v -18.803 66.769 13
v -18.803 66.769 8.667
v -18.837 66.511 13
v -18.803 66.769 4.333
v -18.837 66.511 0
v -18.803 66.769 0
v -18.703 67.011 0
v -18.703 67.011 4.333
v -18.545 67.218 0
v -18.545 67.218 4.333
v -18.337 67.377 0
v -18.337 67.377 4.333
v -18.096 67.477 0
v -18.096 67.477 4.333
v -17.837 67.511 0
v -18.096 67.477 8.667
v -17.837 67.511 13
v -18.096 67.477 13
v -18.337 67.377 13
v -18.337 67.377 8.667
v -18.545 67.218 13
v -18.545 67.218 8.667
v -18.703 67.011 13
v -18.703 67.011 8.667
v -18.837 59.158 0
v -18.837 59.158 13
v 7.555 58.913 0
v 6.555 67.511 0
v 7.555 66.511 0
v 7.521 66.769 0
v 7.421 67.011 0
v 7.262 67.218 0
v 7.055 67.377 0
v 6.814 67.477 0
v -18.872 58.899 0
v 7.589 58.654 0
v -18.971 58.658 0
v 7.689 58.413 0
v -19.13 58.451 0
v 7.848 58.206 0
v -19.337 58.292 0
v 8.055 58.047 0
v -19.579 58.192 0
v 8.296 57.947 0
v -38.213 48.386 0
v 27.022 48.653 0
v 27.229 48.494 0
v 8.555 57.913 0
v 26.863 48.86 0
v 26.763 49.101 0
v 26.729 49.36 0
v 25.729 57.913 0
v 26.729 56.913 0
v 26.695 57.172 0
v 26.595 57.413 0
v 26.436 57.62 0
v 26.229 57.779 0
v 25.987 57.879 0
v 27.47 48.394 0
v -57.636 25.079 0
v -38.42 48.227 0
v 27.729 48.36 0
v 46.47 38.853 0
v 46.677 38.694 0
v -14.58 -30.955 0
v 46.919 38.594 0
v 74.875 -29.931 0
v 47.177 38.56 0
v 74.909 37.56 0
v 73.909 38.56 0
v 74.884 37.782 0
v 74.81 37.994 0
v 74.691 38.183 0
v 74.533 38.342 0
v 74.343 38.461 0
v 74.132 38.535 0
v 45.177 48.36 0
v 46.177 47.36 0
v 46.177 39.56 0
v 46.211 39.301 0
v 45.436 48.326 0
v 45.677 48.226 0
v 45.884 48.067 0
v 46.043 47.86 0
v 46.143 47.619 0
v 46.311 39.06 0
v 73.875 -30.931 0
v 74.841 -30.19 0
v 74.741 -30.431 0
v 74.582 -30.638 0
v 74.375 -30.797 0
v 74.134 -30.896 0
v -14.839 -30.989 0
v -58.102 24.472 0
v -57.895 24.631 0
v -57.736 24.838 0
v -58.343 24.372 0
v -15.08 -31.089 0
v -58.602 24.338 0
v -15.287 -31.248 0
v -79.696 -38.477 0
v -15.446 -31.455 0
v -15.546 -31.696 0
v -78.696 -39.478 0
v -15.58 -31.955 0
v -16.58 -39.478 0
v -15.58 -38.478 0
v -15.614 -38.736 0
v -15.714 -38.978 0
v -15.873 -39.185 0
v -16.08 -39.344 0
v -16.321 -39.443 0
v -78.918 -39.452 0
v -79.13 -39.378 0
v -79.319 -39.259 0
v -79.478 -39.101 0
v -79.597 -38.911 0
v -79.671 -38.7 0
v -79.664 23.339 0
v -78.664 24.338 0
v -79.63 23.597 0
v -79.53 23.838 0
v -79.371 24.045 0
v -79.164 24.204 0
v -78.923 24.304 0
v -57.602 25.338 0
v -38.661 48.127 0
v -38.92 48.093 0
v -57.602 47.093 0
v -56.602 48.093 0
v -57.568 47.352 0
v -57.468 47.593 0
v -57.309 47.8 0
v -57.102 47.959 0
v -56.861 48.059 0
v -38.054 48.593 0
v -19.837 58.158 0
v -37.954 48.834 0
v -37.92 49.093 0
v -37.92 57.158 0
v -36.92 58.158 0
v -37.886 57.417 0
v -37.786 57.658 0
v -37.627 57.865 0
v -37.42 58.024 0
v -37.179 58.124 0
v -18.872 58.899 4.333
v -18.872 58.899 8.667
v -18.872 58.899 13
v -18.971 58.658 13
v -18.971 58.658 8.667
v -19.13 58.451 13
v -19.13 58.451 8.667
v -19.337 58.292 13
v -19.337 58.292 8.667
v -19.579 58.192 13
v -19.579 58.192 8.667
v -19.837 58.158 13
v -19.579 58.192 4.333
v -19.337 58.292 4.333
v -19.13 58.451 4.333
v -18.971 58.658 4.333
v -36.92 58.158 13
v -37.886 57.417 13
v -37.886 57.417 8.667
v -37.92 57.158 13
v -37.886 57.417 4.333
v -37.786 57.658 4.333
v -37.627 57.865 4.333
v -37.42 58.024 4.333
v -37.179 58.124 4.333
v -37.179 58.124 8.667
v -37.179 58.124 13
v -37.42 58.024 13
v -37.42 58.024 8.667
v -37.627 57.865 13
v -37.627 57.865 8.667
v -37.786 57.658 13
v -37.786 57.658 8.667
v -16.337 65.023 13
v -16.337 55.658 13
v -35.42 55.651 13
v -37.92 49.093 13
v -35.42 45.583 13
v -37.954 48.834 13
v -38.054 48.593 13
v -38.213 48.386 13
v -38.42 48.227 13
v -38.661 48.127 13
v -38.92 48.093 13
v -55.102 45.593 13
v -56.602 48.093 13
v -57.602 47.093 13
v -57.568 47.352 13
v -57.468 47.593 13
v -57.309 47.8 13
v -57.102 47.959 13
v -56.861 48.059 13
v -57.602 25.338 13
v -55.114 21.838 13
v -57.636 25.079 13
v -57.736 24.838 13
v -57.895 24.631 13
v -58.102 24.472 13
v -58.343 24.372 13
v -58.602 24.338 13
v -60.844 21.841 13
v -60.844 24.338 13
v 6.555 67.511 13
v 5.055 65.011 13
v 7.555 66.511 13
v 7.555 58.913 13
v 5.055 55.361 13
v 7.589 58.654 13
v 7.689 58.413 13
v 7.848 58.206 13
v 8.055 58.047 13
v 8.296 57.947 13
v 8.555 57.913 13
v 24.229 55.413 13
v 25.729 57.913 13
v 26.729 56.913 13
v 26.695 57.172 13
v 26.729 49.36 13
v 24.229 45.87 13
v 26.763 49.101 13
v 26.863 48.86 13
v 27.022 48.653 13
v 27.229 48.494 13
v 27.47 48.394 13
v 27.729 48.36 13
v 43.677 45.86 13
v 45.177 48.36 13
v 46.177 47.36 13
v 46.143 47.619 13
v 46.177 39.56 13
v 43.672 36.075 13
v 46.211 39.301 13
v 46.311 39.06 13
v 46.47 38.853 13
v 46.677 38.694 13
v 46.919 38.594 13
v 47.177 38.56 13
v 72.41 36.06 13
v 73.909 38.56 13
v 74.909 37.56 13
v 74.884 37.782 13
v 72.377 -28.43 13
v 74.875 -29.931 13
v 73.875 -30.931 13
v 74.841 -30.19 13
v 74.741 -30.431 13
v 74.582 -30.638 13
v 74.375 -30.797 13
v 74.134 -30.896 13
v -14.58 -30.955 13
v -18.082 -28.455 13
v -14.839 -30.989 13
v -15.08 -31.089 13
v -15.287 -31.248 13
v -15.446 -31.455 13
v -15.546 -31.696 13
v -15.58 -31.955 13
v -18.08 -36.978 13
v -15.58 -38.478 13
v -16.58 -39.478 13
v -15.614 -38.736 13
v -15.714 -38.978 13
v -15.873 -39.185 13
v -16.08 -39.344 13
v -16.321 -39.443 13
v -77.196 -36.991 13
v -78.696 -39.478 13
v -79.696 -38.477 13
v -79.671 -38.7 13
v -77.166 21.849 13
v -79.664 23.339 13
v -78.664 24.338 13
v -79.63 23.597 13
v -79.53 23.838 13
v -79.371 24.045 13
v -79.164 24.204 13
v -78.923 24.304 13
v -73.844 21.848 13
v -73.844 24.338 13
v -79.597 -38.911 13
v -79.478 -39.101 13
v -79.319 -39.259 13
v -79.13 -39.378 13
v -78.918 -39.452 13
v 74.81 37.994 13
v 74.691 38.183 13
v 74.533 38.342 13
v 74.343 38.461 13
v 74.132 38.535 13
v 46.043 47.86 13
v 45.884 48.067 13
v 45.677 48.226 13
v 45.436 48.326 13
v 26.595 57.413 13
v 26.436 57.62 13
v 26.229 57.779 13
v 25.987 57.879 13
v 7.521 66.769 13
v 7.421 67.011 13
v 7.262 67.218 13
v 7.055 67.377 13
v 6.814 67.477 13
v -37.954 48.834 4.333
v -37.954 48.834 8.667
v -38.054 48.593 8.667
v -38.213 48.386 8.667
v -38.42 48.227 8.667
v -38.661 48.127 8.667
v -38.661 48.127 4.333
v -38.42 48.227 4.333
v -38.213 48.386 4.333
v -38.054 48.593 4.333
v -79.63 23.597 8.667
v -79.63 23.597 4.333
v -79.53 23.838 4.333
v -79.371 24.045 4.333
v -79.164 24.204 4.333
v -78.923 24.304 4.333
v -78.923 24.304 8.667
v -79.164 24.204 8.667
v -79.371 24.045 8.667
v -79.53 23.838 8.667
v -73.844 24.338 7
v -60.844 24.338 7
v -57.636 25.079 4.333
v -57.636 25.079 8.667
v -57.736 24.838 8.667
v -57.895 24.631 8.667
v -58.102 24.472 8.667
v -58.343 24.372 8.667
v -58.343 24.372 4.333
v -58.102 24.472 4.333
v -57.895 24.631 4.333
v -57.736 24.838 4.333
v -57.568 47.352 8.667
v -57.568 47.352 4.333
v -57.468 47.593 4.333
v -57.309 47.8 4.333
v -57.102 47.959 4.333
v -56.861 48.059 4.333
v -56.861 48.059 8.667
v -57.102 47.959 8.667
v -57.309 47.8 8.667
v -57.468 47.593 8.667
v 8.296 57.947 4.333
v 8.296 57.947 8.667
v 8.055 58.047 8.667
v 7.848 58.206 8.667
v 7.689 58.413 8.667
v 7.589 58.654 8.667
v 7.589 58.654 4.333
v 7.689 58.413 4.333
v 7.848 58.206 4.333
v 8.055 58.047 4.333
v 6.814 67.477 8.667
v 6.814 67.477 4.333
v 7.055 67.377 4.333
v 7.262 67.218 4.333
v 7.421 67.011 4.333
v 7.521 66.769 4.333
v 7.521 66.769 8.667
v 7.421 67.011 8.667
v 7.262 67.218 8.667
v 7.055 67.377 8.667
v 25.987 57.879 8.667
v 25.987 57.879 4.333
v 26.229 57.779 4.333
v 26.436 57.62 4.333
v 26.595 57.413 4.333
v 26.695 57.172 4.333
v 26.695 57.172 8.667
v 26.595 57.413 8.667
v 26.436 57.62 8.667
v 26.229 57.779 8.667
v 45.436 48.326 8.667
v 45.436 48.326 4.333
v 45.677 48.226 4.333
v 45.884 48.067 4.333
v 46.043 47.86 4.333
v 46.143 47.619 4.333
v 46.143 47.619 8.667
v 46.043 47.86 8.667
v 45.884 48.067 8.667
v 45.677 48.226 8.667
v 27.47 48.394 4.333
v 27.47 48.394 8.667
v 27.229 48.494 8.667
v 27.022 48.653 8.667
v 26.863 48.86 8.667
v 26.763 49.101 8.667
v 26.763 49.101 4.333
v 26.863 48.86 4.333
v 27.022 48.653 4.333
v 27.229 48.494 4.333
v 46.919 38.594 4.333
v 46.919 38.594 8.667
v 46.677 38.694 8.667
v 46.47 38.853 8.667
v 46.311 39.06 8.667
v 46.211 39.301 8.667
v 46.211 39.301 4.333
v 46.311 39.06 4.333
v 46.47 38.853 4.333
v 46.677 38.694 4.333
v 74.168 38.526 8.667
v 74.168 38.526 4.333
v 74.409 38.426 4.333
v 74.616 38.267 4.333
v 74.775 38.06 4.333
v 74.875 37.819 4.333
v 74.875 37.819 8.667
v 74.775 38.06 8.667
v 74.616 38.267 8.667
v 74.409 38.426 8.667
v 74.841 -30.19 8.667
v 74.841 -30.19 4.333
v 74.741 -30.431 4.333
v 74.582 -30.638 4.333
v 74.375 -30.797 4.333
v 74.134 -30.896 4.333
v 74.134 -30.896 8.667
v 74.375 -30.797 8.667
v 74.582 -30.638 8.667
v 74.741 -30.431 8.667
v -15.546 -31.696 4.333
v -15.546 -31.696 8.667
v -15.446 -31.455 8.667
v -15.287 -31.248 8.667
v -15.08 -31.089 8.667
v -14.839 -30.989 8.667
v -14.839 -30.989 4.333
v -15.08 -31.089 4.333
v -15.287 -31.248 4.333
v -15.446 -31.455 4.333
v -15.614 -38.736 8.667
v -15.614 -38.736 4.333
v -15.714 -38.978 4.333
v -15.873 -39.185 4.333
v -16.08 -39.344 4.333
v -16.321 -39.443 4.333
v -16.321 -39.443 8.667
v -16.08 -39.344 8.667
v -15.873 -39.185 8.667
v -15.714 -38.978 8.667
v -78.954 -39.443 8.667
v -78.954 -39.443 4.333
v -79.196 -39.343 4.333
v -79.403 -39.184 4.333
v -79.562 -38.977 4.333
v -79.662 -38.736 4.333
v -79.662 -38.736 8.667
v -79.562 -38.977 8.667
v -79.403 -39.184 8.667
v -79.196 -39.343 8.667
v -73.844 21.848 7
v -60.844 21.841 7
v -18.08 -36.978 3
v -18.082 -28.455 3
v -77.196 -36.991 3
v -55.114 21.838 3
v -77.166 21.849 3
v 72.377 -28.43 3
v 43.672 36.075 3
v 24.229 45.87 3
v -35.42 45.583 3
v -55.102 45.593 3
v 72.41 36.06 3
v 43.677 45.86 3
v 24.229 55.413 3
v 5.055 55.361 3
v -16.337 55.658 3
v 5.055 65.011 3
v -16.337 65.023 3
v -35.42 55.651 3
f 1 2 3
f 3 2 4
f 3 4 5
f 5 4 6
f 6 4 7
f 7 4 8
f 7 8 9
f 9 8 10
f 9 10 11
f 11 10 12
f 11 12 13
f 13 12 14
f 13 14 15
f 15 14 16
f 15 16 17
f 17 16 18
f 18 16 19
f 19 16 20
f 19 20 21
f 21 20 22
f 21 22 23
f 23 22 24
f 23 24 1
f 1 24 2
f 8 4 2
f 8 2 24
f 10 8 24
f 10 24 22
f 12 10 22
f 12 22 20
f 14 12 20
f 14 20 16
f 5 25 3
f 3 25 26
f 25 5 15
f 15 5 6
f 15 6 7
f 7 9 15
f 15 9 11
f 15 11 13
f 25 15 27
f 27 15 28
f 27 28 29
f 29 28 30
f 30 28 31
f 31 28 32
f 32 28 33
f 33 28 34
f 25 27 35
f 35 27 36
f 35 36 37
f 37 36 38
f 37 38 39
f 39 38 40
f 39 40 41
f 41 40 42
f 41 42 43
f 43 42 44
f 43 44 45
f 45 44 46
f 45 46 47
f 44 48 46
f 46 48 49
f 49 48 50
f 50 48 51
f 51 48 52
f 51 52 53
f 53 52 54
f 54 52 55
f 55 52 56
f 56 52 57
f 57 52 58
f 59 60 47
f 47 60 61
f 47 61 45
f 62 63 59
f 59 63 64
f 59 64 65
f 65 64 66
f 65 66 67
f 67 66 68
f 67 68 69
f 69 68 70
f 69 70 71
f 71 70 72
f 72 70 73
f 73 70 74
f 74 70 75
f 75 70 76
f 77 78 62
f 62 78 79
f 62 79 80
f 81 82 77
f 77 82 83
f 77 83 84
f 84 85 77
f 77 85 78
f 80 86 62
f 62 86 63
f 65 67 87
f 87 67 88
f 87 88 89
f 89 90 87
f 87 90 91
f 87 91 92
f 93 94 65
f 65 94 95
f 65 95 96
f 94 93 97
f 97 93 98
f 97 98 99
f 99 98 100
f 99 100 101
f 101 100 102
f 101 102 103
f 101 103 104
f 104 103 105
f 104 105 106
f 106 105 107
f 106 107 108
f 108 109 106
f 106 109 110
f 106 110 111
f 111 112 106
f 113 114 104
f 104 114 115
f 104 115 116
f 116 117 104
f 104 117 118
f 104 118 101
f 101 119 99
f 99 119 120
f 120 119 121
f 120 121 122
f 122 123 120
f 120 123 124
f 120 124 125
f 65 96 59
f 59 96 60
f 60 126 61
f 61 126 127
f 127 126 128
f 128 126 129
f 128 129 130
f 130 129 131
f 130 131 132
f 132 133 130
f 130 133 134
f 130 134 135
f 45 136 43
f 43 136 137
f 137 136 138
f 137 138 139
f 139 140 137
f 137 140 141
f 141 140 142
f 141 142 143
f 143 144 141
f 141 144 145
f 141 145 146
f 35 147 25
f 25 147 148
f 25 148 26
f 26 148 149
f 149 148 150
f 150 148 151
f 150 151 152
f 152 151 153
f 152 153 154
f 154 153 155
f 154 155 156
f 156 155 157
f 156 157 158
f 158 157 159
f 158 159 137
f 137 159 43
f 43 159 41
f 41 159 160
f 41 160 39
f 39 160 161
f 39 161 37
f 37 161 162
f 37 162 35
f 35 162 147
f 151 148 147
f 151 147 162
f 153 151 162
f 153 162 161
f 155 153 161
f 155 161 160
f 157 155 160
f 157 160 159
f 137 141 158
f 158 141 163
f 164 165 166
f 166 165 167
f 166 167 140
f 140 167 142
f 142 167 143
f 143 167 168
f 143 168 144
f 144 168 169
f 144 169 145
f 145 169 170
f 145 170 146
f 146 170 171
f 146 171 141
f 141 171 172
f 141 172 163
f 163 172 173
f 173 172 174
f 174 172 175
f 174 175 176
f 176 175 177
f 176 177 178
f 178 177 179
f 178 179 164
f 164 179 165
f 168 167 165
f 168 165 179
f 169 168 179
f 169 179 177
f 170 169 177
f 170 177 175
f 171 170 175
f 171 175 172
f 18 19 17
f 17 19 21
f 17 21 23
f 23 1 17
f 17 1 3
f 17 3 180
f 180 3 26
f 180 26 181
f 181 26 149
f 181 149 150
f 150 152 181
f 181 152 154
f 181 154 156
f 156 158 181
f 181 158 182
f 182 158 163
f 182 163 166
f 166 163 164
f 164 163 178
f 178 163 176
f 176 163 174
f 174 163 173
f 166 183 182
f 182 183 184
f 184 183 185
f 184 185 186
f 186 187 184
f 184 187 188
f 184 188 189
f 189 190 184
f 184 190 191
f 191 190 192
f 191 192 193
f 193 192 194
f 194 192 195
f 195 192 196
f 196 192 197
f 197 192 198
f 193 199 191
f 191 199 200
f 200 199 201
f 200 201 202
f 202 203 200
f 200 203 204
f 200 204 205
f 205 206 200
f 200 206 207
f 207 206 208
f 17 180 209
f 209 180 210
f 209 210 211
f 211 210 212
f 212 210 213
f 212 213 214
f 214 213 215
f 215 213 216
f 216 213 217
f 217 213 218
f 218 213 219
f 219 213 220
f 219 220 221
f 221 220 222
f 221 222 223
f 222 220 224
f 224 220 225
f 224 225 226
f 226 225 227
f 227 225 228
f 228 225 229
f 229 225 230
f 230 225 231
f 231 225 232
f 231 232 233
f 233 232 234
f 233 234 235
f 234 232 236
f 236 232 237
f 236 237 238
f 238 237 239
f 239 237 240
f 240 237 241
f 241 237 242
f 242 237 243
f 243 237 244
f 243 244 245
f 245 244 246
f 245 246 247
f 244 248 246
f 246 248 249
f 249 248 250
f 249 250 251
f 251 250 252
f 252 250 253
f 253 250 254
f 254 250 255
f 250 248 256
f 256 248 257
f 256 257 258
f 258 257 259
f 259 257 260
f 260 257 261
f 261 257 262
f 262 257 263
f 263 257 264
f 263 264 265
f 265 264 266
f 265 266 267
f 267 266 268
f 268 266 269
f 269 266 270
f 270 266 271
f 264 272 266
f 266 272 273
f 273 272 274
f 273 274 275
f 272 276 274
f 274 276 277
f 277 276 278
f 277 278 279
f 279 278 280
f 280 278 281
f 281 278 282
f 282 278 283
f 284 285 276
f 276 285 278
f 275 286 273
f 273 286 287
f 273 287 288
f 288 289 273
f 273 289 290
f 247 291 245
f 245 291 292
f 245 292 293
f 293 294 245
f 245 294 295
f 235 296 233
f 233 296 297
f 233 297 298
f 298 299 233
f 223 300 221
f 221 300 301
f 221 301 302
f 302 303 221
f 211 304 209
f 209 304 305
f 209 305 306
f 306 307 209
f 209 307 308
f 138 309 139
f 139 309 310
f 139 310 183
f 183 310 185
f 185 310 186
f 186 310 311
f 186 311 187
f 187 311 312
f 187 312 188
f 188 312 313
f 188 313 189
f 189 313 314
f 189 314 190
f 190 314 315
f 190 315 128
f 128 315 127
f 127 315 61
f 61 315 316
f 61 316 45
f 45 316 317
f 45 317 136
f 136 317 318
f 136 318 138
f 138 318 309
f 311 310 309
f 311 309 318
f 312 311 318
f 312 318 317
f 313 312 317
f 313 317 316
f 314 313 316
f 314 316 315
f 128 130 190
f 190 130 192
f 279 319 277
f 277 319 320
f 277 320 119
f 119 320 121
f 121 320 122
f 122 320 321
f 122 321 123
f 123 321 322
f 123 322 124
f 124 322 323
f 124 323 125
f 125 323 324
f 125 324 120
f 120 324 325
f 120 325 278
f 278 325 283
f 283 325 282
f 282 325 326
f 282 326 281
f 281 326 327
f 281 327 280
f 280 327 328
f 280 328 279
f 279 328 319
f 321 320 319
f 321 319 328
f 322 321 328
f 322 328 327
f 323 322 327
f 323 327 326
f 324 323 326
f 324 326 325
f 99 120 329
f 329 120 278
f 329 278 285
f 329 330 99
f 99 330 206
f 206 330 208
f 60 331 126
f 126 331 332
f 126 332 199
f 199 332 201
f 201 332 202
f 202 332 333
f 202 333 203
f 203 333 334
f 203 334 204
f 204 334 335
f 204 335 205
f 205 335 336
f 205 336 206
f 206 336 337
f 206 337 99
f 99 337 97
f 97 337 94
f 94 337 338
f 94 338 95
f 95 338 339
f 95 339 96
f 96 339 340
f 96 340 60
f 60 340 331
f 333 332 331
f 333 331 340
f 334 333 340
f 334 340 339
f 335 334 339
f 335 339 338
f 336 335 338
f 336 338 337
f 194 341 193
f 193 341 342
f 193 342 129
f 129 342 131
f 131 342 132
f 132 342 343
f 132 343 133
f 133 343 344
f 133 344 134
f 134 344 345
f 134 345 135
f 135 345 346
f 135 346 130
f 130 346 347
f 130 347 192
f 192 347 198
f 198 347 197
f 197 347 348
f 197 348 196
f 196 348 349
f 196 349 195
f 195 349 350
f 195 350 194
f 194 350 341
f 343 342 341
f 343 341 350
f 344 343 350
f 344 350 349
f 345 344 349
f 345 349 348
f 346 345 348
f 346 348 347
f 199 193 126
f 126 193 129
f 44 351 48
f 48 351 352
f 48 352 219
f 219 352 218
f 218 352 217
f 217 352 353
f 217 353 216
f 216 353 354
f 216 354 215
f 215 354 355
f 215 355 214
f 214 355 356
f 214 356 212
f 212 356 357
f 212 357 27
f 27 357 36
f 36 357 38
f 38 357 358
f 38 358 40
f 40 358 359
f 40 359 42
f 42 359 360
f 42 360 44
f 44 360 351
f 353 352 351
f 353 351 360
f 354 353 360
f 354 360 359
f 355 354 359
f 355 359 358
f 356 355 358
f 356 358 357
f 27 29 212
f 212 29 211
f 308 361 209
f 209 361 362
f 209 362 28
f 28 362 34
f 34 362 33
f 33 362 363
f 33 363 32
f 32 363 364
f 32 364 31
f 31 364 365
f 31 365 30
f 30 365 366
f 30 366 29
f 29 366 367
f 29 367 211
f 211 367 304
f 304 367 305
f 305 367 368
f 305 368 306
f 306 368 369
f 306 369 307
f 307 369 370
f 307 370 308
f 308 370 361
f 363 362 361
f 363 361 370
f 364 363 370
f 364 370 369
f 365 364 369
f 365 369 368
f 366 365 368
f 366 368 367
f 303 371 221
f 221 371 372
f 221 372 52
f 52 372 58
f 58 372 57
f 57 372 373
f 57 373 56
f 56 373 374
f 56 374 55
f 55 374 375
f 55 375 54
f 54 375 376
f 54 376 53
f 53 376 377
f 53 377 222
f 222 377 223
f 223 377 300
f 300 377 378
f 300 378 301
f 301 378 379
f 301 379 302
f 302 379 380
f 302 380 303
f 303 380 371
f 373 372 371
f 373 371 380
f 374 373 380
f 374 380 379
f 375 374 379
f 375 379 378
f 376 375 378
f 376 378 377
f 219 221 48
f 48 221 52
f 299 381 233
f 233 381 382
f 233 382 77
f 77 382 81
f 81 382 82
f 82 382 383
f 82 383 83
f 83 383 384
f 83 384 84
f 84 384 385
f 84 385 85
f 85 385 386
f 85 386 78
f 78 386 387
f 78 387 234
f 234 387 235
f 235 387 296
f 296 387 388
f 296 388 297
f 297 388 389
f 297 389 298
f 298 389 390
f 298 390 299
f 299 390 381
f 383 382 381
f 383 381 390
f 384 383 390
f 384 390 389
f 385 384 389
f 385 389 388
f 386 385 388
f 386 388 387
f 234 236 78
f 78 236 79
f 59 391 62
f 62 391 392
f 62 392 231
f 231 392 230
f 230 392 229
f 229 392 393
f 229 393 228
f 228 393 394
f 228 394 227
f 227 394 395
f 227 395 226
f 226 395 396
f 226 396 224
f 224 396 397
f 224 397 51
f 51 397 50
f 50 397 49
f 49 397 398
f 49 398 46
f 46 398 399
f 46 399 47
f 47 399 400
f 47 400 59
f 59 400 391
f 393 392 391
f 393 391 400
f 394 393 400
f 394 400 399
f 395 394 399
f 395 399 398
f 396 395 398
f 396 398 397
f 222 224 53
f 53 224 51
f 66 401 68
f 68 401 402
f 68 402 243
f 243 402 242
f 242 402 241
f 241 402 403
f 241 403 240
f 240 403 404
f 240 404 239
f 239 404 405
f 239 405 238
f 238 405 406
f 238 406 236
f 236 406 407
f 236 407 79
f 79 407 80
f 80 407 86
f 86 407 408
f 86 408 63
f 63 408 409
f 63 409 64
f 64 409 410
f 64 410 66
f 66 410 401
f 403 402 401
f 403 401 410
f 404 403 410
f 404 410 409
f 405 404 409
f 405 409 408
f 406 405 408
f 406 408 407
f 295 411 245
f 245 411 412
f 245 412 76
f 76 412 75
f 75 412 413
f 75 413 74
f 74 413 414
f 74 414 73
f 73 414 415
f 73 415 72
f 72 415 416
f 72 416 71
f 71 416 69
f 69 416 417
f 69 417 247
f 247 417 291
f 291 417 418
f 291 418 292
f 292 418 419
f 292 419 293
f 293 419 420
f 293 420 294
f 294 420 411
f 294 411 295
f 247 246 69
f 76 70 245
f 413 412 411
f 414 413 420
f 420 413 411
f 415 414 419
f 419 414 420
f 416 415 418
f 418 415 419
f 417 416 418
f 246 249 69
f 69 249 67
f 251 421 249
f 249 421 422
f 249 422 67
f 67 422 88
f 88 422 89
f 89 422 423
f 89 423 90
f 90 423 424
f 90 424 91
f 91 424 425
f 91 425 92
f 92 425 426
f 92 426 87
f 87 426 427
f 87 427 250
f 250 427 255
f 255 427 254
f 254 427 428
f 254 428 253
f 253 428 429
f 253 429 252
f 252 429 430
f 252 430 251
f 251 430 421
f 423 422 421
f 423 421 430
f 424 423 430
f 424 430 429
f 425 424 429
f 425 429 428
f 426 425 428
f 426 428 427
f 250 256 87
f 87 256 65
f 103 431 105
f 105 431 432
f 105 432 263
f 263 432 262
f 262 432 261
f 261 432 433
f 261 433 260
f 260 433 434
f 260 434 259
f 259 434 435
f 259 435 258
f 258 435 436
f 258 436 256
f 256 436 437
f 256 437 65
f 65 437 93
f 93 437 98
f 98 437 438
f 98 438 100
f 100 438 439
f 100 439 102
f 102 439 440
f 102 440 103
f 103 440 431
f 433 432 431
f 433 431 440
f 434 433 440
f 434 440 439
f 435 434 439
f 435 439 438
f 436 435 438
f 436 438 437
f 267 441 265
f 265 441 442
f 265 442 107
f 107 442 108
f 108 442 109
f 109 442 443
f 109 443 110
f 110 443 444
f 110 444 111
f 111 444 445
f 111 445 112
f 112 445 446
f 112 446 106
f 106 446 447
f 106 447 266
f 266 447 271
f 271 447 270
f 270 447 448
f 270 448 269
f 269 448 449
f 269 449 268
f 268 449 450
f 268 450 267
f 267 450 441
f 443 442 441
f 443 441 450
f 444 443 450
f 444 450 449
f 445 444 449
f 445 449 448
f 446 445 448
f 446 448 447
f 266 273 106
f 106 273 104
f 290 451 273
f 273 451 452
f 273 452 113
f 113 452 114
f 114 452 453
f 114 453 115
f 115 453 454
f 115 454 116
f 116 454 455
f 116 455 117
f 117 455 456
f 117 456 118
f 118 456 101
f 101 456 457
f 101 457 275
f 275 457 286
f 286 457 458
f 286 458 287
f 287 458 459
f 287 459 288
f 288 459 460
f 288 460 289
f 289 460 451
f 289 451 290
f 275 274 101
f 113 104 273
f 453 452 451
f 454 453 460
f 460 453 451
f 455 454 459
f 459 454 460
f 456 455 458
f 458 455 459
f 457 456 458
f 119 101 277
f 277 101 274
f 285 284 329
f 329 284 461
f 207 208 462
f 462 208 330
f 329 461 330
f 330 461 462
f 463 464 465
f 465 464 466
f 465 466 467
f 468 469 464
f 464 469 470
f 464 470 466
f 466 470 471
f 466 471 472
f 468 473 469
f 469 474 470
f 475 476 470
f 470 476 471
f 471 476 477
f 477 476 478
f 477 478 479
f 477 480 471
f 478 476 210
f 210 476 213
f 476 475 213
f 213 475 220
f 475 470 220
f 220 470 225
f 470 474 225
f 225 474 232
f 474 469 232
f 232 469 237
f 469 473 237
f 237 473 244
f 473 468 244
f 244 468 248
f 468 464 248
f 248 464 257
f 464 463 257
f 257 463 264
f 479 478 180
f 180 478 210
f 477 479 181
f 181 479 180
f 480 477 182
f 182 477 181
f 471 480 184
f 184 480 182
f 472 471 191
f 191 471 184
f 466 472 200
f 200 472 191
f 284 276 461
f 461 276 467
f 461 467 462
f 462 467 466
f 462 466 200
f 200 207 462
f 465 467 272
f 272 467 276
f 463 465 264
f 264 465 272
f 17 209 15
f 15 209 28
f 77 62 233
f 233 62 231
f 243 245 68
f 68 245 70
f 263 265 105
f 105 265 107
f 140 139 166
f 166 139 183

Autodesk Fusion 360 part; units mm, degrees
sketch "Sketch1" plane through (0, 0, 0) normal (0, 0, 1) x (1, 0, 0)
  line L0 (-77.1661, 21.8494) -> (-77.196, -36.9915)
  line L1 (-55.1143, 21.8382) -> (-77.1661, 21.8494)
  line L2 (-55.1022, 45.5931) -> (-55.1143, 21.8382)
  line L3 (-35.4199, 45.5831) -> (-55.1022, 45.5931)
  line L4 (-35.4199, 55.6506) -> (-35.4199, 45.5831)
  line L5 (-16.3374, 55.6581) -> (-35.4199, 55.6506)
  line L6 (-16.3374, 65.0231) -> (-16.3374, 55.6581)
  line L7 (5.0551, 65.0106) -> (-16.3374, 65.0231)
  line L8 (5.0551, 55.3606) -> (5.0551, 65.0106)
  line L9 (24.2287, 55.413) -> (5.0551, 55.3606)
  line L10 (24.2287, 45.8698) -> (24.2287, 55.413)
  line L11 (43.6774, 45.8599) -> (24.2287, 45.8698)
  line L12 (43.6724, 36.0748) -> (43.6774, 45.8599)
  line L13 (72.4097, 36.0602) -> (43.6724, 36.0748)
  line L14 (72.377, -28.4302) -> (72.4097, 36.0602)
  line L15 (-18.082, -28.4553) -> (72.377, -28.4302)
  line L16 (-18.0799, -36.9775) -> (-18.082, -28.4553)
  line L17 (-77.196, -36.9915) -> (-18.0799, -36.9775)
  line L18 (-18.8374, 67.5106) -> (7.5551, 67.5106)
  line L19 (7.5551, 67.5106) -> (7.5551, 57.913)
  line L20 (7.5551, 57.913) -> (26.7287, 57.913)
  line L21 (26.7287, 57.913) -> (26.7287, 48.3599)
  line L22 (26.7287, 48.3599) -> (46.1774, 48.3599)
  line L23 (46.1774, 48.3599) -> (46.1774, 38.5602)
  line L24 (74.9097, 38.5602) -> (46.1774, 38.5602)
  line L25 (74.9097, 38.5602) -> (74.8744, -30.9302)
  line L26 (-15.5799, -30.9553) -> (-15.5799, -39.4775)
  line L27 (-15.5799, -30.9553) -> (74.8744, -30.9302)
  line L28 (-15.5799, -39.4775) -> (-79.696, -39.4775)
  line L29 (-79.696, -39.4775) -> (-79.6636, 24.3382)
  line L30 (-79.6636, 24.3382) -> (-57.6022, 24.3382)
  line L31 (-57.6022, 24.3382) -> (-57.6022, 48.0931)
  line L32 (-57.6022, 48.0931) -> (-37.9199, 48.0931)
  line L33 (-37.9199, 58.1581) -> (-37.9199, 48.0931)
  line L34 (-37.9199, 58.1581) -> (-18.8374, 58.1581)
  line L35 (-18.8374, 58.1581) -> (-18.8374, 67.5106)
  dimension "d1" = 2.5
  dimension "d2" = 2.5
  dimension "d4" = 2.5
  dimension "d5" = 2.5
  dimension "d6" = 2.5
  dimension "d7" = 2.5
  dimension "d8" = 2.5
  dimension "d9" = 2.5
  dimension "d11" = 2.5
  dimension "d12" = 2.5
  dimension "d13" = 2.5
  dimension "d14" = 2.5
  dimension "d16" = 2.5
  dimension "d17" = 2.5
  dimension "d18" = 2.5
  dimension "d19" = 2.5
  dimension "d20" = 2.5
  dimension "d21" = 2.5
  dimension "d22" = 2.5
extrude "Extrude1" add sketch "Sketch1" along normal blind 13
extrude "Extrude2" add sketch "Sketch1" along normal blind 3 contours L0 L1 L2 L3 L4 L5 L6 L7 L8 L9 L10 L11 L12 L13 L14 L15 L16 L17
sketch "Sketch4" plane through (0, 0, 13) normal (0, 0, 1) x (-1, 0, 0)
  line L0 (18.0799, 36.9775) -> (77.196, 36.9915)
  line L1 (77.196, 36.9915) -> (77.1661, -21.8494)
  line L2 (77.1661, -21.8494) -> (55.1143, -21.8382)
  line L3 (55.1143, -21.8382) -> (55.1022, -45.5931)
  line L4 (55.1022, -45.5931) -> (35.4199, -45.5831)
  line L5 (35.4199, -45.5831) -> (35.4199, -55.6506)
  line L6 (35.4199, -55.6506) -> (16.3374, -55.6581)
  line L7 (16.3374, -55.6581) -> (16.3374, -65.0231)
  line L8 (16.3374, -65.0231) -> (-5.0551, -65.0106)
  line L9 (-5.0551, -65.0106) -> (-5.0551, -55.3606)
  line L10 (-5.0551, -55.3606) -> (-24.2287, -55.413)
  line L11 (-24.2287, -55.413) -> (-24.2287, -45.8698)
  line L12 (-24.2287, -45.8698) -> (-43.6774, -45.8599)
  line L13 (-43.6774, -45.8599) -> (-43.6724, -36.0748)
  line L14 (-43.6724, -36.0748) -> (-72.4097, -36.0602)
  line L15 (-72.4097, -36.0602) -> (-72.377, 28.4302)
  line L16 (-72.377, 28.4302) -> (18.082, 28.4553)
  line L17 (18.082, 28.4553) -> (18.0799, 36.9775)
  line L18 (37.9199, -58.1581) -> (37.9199, -48.0931)
  line L19 (37.9199, -48.0931) -> (57.6022, -48.0931)
  line L20 (57.6022, -48.0931) -> (57.6022, -24.3382)
  line L21 (57.6022, -24.3382) -> (79.6636, -24.3382)
  line L22 (79.6636, -24.3382) -> (79.696, 39.4775)
  line L23 (79.696, 39.4775) -> (15.5799, 39.4775)
  line L24 (15.5799, 39.4775) -> (15.5799, 30.9553)
  line L25 (15.5799, 30.9553) -> (-74.8744, 30.9302)
  line L26 (-74.8744, 30.9302) -> (-74.9097, -38.5602)
  line L27 (-74.9097, -38.5602) -> (-46.1774, -38.5602)
  line L28 (-46.1774, -38.5602) -> (-46.1774, -48.3599)
  line L29 (-46.1774, -48.3599) -> (-26.7287, -48.3599)
  line L30 (-26.7287, -48.3599) -> (-26.7287, -57.913)
  line L31 (-26.7287, -57.913) -> (-7.5551, -57.913)
  line L32 (-7.5551, -57.913) -> (-7.5551, -67.5106)
  line L33 (-7.5551, -67.5106) -> (18.8374, -67.5106)
  line L34 (18.8374, -67.5106) -> (18.8374, -58.1581)
  line L35 (18.8374, -58.1581) -> (37.9199, -58.1581)
  line L36 (73.8436, -24.8) -> (60.8436, -24.8)
  line L37 (60.8436, -24.8) -> (60.8436, -21.5)
  line L38 (60.8436, -21.5) -> (73.8436, -21.5)
  line L39 (73.8436, -21.5) -> (73.8436, -24.8)
  dimension "d27" = 13
  dimension "d28" = 5.82
extrude "Extrude3" cut sketch "Sketch4" against normal blind 6 contours L2 L21 L37 L39
fillet "Fillet1" radius 1 18 edges at (-79.696, -39.4775, 6.5) (-15.5799, -39.4775, 6.5) (-15.5799, -30.9553, 6.5) (74.8744, -30.9302, 6.5) (74.9097, 38.5602, 6.5) (46.1774, 38.5602, 6.5) (26.7287, 48.3599, 6.5) (46.1774, 48.3599, 6.5) (26.7287, 57.913, 6.5) (7.5551, 67.5106, 6.5) (7.5551, 57.913, 6.5) (-57.6022, 48.0931, 6.5) (-57.6022, 24.3382, 6.5) (-79.6636, 24.3382, 6.5) (-37.9199, 48.0931, 6.5) (-37.9199, 58.1581, 6.5) (-18.8374, 58.1581, 6.5) (-18.8374, 67.5106, 6.5)
